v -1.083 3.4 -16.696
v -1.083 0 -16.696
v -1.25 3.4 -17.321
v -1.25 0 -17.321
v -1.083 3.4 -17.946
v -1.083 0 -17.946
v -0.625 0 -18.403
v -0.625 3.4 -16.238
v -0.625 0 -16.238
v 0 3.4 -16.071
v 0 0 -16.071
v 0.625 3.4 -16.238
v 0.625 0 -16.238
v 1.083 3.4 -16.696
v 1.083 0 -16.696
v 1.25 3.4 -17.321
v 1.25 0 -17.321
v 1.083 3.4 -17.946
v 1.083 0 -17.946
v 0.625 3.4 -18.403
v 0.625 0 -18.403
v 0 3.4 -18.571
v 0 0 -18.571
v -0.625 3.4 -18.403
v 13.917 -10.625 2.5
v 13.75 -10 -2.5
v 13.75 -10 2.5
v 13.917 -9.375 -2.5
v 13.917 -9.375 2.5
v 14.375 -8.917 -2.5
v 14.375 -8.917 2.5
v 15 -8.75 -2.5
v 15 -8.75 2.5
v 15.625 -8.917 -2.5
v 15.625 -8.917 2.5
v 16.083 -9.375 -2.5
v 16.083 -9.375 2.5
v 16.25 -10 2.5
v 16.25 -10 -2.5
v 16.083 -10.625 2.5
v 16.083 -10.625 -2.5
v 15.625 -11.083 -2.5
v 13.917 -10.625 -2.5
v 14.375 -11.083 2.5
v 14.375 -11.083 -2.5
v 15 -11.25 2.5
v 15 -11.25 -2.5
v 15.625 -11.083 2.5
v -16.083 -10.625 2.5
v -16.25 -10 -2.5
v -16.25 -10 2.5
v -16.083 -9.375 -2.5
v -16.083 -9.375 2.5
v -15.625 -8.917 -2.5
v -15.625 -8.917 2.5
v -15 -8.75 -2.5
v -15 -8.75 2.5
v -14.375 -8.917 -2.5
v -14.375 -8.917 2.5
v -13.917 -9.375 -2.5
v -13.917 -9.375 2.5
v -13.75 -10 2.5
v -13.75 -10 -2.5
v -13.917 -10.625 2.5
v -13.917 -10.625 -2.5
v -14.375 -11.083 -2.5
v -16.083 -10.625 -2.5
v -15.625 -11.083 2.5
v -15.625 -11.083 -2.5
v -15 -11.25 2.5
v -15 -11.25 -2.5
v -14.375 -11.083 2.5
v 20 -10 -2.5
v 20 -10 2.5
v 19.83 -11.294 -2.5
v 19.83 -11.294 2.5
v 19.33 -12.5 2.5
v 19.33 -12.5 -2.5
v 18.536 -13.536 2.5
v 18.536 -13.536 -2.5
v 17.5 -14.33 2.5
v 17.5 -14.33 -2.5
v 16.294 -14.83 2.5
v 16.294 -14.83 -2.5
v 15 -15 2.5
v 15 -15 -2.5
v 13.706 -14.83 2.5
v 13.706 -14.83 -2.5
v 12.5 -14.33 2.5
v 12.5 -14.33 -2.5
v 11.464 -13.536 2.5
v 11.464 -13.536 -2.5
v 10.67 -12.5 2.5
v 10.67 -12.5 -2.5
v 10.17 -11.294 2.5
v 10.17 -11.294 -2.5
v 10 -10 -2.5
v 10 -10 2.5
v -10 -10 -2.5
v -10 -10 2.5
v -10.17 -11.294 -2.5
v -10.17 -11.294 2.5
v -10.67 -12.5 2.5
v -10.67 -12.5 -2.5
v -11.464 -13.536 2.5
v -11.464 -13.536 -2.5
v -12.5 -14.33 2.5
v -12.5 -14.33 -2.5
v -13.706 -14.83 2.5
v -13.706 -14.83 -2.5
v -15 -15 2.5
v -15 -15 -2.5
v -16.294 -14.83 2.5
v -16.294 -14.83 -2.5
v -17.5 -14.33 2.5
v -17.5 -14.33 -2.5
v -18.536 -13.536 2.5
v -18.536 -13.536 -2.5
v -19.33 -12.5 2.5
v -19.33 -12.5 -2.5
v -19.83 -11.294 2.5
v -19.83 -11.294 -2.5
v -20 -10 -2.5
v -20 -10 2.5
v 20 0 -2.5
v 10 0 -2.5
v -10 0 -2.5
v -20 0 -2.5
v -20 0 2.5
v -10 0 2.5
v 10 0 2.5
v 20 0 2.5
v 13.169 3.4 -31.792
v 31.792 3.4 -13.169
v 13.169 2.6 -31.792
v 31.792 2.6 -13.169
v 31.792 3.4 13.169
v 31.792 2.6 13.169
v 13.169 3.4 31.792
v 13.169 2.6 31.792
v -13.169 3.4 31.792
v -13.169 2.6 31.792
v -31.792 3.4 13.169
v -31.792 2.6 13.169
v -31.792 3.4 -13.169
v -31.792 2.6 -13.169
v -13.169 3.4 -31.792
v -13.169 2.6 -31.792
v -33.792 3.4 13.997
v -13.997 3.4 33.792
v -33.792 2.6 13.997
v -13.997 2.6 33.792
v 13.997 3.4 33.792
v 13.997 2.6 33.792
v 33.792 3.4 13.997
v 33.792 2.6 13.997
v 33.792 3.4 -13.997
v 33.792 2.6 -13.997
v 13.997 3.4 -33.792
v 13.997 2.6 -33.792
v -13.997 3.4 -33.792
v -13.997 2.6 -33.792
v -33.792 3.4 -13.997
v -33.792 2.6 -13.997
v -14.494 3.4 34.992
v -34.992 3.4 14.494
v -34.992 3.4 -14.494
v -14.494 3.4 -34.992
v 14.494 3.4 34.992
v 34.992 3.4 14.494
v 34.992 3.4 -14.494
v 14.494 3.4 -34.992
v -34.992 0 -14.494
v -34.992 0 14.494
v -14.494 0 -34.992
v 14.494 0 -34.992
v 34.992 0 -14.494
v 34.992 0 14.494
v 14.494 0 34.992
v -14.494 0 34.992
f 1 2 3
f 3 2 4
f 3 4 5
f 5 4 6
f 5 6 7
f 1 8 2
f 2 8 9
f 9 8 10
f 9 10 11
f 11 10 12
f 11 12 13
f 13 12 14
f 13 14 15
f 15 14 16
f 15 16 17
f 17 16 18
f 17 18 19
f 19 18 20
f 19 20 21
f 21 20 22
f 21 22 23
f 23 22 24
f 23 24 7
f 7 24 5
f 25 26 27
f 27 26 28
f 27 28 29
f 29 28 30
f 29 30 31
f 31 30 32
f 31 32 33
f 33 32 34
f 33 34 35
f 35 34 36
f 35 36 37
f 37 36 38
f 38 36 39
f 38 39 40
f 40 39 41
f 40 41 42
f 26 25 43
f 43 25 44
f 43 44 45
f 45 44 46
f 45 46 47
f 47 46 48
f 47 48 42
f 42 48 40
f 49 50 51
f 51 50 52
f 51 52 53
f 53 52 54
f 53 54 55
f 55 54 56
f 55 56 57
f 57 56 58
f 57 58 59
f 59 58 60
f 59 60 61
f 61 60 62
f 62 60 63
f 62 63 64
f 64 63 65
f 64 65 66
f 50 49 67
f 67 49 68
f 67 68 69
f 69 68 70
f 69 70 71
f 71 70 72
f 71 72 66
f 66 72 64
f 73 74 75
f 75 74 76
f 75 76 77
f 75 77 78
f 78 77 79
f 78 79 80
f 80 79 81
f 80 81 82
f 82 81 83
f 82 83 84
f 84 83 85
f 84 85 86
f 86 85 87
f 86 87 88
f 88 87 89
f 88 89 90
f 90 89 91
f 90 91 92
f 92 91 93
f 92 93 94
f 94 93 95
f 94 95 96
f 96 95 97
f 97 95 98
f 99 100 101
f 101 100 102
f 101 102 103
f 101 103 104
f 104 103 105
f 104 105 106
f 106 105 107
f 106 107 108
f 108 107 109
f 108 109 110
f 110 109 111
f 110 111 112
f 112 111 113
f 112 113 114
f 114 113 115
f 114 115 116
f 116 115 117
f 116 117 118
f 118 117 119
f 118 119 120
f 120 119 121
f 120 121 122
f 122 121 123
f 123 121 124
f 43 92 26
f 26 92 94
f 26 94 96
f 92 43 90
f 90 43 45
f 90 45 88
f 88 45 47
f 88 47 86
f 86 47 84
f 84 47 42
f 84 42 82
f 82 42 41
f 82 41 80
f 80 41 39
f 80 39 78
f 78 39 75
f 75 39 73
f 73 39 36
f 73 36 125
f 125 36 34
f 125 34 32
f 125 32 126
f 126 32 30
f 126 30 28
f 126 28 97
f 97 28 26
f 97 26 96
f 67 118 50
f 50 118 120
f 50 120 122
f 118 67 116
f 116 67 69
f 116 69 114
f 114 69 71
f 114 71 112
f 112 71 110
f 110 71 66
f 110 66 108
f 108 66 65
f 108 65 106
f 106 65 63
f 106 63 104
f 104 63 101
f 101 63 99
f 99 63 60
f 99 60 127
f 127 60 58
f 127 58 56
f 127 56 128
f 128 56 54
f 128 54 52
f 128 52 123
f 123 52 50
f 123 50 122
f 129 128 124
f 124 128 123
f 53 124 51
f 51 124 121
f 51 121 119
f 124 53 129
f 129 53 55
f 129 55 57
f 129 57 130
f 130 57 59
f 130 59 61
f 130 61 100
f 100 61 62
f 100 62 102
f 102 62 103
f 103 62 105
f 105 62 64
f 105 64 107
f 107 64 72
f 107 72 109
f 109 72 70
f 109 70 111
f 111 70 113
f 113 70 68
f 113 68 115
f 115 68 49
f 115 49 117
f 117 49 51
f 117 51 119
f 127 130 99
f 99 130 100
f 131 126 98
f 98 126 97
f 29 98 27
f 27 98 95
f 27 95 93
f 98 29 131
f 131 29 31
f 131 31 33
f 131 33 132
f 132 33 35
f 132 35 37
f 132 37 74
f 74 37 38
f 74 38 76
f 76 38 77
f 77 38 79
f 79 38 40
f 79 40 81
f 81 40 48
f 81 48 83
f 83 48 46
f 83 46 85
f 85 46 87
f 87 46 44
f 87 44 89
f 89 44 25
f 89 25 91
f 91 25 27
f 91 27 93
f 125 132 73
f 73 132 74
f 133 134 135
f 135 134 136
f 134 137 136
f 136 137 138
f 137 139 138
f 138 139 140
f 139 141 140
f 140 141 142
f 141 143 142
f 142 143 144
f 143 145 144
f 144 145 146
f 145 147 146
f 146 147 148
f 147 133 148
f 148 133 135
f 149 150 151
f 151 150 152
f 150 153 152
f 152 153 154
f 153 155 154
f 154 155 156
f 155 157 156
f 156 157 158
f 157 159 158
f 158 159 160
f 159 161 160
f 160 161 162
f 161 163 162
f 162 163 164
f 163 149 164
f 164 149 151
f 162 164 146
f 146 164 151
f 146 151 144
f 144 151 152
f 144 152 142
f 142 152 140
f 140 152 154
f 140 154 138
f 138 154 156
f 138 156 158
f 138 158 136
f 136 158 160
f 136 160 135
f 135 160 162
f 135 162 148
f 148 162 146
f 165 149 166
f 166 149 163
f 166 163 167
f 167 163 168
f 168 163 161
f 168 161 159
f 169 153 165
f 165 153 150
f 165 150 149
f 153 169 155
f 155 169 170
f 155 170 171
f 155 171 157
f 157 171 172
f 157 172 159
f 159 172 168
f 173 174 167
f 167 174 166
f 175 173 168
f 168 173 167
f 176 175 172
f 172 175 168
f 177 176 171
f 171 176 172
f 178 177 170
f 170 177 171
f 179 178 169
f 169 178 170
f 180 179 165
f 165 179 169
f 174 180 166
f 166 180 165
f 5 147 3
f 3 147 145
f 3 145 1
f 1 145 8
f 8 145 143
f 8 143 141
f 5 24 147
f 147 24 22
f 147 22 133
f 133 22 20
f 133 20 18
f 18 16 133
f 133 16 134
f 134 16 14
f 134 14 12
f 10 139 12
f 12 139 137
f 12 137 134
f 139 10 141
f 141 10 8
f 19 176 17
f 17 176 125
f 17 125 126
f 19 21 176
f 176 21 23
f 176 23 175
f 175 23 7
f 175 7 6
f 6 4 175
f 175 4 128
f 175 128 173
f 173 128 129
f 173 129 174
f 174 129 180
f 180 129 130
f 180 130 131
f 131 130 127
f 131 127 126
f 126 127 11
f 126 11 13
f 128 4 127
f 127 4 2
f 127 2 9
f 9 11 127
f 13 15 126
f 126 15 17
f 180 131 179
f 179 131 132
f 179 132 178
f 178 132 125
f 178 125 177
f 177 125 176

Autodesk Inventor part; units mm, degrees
ref_plane "YZ Plane" through (0, 0, 0) normal (1, 0, 0) x (0, 1, 0)
ref_plane "XZ Plane" through (0, 0, 0) normal (0, 1, 0) x (-1, 0, 0)
ref_plane "XY Plane" through (0, 0, 0) normal (0, 0, 1) x (1, 0, 0)
sketch "스케치3" plane through (0, 0, 0) normal (0, 1, 0) x (-1, 0, 0)
  line L0 (34.9919, -14.4941) -> (14.4941, -34.9919)
  line L1 (14.4941, -34.9919) -> (-14.4941, -34.9919)
  line L2 (-14.4941, -34.9919) -> (-34.9919, -14.4941)
  line L3 (-34.9919, -14.4941) -> (-34.9919, 14.4941)
  line L4 (-34.9919, 14.4941) -> (-14.4941, 34.9919)
  line L5 (-14.4941, 34.9919) -> (14.4941, 34.9919)
  line L6 (14.4941, 34.9919) -> (34.9919, 14.4941)
  line L7 (34.9919, 14.4941) -> (34.9919, -14.4941)
  line L8 (32.5919, -13.5) -> (13.5, -32.5919)
  line L9 (13.5, -32.5919) -> (-13.5, -32.5919)
  line L10 (-13.5, -32.5919) -> (-32.5919, -13.5)
  line L11 (-32.5919, -13.5) -> (-32.5919, 13.5)
  line L12 (-32.5919, 13.5) -> (-13.5, 32.5919)
  line L13 (-13.5, 32.5919) -> (13.5, 32.5919)
  line L14 (13.5, 32.5919) -> (32.5919, 13.5)
  line L15 (32.5919, 13.5) -> (32.5919, -13.5)
  point P0 (0, 0)
  point P1 (0, 0)
  point P2 (0, 0)
  point P3 (0, 0)
  dimension "d43" = 27
  dimension "d44" = 2.4
extrude "돌출2" add sketch "스케치3" along normal blind 3.4 contours L0 L1 L2 L3 L4 L5 L6 L7 | L8 L9 L10 L11 L12 L13 L14 L15
sketch "스케치4" plane through (0, 3.4, 0) normal (0, 1, 0) x (1, 0, 0)
  line L0 (13.5, -32.5919) -> (-13.5, -32.5919)
  line L1 (-13.5, -32.5919) -> (-32.5919, -13.5)
  line L2 (-32.5919, -13.5) -> (-32.5919, 13.5)
  line L3 (-32.5919, 13.5) -> (-13.5, 32.5919)
  line L4 (-13.5, 32.5919) -> (13.5, 32.5919)
  line L5 (13.5, 32.5919) -> (32.5919, 13.5)
  line L6 (32.5919, 13.5) -> (32.5919, -13.5)
  line L7 (32.5919, -13.5) -> (13.5, -32.5919)
  line L8 (-13.9971, 33.7919) -> (13.9971, 33.7919)
  line L9 (13.9971, 33.7919) -> (33.7919, 13.9971)
  line L10 (33.7919, 13.9971) -> (33.7919, -13.9971)
  line L11 (33.7919, -13.9971) -> (13.9971, -33.7919)
  line L12 (13.9971, -33.7919) -> (-13.9971, -33.7919)
  line L13 (-13.9971, -33.7919) -> (-33.7919, -13.9971)
  line L14 (-33.7919, -13.9971) -> (-33.7919, 13.9971)
  line L15 (-33.7919, 13.9971) -> (-13.9971, 33.7919)
  line L16 (-13.1686, 31.7919) -> (13.1686, 31.7919)
  line L17 (13.1686, 31.7919) -> (31.7919, 13.1686)
  line L18 (31.7919, 13.1686) -> (31.7919, -13.1686)
  line L19 (31.7919, -13.1686) -> (13.1686, -31.7919)
  line L20 (13.1686, -31.7919) -> (-13.1686, -31.7919)
  line L21 (-13.1686, -31.7919) -> (-31.7919, -13.1686)
  line L22 (-31.7919, -13.1686) -> (-31.7919, 13.1686)
  line L23 (-31.7919, 13.1686) -> (-13.1686, 31.7919)
  point P0 (0, 0)
  point P1 (0, 0)
  point P2 (0, 0)
  point P3 (0, 0)
  dimension "d7" = 27
  dimension "d42" = 1.2
  dimension "d45" = 0.8
extrude "돌출3" cut sketch "스케치4" against normal blind 0.8 contours L0 L1 L2 L3 L4 L5 L6 L7 | L8 L9 L10 L11 L12 L13 L14 L15
sketch "스케치5" plane through (0, 0, 0) normal (0, -1, 0) x (1, 0, 0)
  line L0 (10, 2.5) -> (20, 2.5)
  line L1 (20, 2.5) -> (20, -2.5)
  line L2 (20, -2.5) -> (10, -2.5)
  line L3 (10, -2.5) -> (10, 2.5)
  line L4 (10, 2.5) -> (20, -2.5) construction
  line L5 (20, 2.5) -> (10, -2.5) construction
  line L6 (-20, 2.5) -> (-10, 2.5)
  line L7 (-10, 2.5) -> (-10, -2.5)
  line L8 (-10, -2.5) -> (-20, -2.5)
  line L9 (-20, -2.5) -> (-20, 2.5)
  line L10 (-20, 2.5) -> (-10, -2.5) construction
  line L11 (-10, 2.5) -> (-20, -2.5) construction
  point P0 (0, 0)
  point P1 (15, 0)
  point P2 (-15, 0)
  dimension "d11" = 10
  dimension "d12" = 5
  dimension "d13" = 10
  dimension "d16" = 30
extrude "돌출4" add sketch "스케치5" along normal blind 10
sketch "스케치6" plane through (-10, 0, -2.5) normal (0, 0, -1) x (-1, 0, 0)
  circle A0 centre (5, -10) radius 5
  circle A1 centre (-25, -10) radius 5
  line L0 (-20, -10) -> (-30, -10) projected
  line L1 (10, -10) -> (0, -10) projected
  point P0 (-10, 0)
  dimension "d23" = 10
  dimension "d24" = 10
extrude "돌출5" add sketch "스케치6" against normal blind 5
sketch "스케치7" plane through (-10, 0, -2.5) normal (0, 0, -1) x (-1, 0, 0)
  circle A0 centre (5, -10) radius 1.25
  line L0 (10, 0) -> (10, -10) projected
  line L1 (0, 0) -> (10, 0) projected
  line L2 (4.7788, 0) -> (0, 0)
  circle A1 centre (-25, -10) radius 1.25
  point P0 (-10, 0)
  dimension "d27" = 2.5
  dimension "d28" = 5
  dimension "d31" = 30
extrude "돌출6" cut sketch "스케치7" against normal blind 5
sketch "스케치8" plane through (0, 0, 0) normal (0, -1, 0) x (1, 0, 0)
  circle A0 centre (0, -17.3205) radius 1.25
  line L0 (-10, 2.5) -> (-10, -2.5) projected
  point P0 (0, 0)
  point P1 (-10, 0)
  dimension "d38" = 2.5
  dimension "d39" = 17.3205
extrude "돌출7" cut sketch "스케치8" against normal blind 5
properties part number "팔각형 OV-PAM 5패턴 상단 - 틈 너비 수정"
